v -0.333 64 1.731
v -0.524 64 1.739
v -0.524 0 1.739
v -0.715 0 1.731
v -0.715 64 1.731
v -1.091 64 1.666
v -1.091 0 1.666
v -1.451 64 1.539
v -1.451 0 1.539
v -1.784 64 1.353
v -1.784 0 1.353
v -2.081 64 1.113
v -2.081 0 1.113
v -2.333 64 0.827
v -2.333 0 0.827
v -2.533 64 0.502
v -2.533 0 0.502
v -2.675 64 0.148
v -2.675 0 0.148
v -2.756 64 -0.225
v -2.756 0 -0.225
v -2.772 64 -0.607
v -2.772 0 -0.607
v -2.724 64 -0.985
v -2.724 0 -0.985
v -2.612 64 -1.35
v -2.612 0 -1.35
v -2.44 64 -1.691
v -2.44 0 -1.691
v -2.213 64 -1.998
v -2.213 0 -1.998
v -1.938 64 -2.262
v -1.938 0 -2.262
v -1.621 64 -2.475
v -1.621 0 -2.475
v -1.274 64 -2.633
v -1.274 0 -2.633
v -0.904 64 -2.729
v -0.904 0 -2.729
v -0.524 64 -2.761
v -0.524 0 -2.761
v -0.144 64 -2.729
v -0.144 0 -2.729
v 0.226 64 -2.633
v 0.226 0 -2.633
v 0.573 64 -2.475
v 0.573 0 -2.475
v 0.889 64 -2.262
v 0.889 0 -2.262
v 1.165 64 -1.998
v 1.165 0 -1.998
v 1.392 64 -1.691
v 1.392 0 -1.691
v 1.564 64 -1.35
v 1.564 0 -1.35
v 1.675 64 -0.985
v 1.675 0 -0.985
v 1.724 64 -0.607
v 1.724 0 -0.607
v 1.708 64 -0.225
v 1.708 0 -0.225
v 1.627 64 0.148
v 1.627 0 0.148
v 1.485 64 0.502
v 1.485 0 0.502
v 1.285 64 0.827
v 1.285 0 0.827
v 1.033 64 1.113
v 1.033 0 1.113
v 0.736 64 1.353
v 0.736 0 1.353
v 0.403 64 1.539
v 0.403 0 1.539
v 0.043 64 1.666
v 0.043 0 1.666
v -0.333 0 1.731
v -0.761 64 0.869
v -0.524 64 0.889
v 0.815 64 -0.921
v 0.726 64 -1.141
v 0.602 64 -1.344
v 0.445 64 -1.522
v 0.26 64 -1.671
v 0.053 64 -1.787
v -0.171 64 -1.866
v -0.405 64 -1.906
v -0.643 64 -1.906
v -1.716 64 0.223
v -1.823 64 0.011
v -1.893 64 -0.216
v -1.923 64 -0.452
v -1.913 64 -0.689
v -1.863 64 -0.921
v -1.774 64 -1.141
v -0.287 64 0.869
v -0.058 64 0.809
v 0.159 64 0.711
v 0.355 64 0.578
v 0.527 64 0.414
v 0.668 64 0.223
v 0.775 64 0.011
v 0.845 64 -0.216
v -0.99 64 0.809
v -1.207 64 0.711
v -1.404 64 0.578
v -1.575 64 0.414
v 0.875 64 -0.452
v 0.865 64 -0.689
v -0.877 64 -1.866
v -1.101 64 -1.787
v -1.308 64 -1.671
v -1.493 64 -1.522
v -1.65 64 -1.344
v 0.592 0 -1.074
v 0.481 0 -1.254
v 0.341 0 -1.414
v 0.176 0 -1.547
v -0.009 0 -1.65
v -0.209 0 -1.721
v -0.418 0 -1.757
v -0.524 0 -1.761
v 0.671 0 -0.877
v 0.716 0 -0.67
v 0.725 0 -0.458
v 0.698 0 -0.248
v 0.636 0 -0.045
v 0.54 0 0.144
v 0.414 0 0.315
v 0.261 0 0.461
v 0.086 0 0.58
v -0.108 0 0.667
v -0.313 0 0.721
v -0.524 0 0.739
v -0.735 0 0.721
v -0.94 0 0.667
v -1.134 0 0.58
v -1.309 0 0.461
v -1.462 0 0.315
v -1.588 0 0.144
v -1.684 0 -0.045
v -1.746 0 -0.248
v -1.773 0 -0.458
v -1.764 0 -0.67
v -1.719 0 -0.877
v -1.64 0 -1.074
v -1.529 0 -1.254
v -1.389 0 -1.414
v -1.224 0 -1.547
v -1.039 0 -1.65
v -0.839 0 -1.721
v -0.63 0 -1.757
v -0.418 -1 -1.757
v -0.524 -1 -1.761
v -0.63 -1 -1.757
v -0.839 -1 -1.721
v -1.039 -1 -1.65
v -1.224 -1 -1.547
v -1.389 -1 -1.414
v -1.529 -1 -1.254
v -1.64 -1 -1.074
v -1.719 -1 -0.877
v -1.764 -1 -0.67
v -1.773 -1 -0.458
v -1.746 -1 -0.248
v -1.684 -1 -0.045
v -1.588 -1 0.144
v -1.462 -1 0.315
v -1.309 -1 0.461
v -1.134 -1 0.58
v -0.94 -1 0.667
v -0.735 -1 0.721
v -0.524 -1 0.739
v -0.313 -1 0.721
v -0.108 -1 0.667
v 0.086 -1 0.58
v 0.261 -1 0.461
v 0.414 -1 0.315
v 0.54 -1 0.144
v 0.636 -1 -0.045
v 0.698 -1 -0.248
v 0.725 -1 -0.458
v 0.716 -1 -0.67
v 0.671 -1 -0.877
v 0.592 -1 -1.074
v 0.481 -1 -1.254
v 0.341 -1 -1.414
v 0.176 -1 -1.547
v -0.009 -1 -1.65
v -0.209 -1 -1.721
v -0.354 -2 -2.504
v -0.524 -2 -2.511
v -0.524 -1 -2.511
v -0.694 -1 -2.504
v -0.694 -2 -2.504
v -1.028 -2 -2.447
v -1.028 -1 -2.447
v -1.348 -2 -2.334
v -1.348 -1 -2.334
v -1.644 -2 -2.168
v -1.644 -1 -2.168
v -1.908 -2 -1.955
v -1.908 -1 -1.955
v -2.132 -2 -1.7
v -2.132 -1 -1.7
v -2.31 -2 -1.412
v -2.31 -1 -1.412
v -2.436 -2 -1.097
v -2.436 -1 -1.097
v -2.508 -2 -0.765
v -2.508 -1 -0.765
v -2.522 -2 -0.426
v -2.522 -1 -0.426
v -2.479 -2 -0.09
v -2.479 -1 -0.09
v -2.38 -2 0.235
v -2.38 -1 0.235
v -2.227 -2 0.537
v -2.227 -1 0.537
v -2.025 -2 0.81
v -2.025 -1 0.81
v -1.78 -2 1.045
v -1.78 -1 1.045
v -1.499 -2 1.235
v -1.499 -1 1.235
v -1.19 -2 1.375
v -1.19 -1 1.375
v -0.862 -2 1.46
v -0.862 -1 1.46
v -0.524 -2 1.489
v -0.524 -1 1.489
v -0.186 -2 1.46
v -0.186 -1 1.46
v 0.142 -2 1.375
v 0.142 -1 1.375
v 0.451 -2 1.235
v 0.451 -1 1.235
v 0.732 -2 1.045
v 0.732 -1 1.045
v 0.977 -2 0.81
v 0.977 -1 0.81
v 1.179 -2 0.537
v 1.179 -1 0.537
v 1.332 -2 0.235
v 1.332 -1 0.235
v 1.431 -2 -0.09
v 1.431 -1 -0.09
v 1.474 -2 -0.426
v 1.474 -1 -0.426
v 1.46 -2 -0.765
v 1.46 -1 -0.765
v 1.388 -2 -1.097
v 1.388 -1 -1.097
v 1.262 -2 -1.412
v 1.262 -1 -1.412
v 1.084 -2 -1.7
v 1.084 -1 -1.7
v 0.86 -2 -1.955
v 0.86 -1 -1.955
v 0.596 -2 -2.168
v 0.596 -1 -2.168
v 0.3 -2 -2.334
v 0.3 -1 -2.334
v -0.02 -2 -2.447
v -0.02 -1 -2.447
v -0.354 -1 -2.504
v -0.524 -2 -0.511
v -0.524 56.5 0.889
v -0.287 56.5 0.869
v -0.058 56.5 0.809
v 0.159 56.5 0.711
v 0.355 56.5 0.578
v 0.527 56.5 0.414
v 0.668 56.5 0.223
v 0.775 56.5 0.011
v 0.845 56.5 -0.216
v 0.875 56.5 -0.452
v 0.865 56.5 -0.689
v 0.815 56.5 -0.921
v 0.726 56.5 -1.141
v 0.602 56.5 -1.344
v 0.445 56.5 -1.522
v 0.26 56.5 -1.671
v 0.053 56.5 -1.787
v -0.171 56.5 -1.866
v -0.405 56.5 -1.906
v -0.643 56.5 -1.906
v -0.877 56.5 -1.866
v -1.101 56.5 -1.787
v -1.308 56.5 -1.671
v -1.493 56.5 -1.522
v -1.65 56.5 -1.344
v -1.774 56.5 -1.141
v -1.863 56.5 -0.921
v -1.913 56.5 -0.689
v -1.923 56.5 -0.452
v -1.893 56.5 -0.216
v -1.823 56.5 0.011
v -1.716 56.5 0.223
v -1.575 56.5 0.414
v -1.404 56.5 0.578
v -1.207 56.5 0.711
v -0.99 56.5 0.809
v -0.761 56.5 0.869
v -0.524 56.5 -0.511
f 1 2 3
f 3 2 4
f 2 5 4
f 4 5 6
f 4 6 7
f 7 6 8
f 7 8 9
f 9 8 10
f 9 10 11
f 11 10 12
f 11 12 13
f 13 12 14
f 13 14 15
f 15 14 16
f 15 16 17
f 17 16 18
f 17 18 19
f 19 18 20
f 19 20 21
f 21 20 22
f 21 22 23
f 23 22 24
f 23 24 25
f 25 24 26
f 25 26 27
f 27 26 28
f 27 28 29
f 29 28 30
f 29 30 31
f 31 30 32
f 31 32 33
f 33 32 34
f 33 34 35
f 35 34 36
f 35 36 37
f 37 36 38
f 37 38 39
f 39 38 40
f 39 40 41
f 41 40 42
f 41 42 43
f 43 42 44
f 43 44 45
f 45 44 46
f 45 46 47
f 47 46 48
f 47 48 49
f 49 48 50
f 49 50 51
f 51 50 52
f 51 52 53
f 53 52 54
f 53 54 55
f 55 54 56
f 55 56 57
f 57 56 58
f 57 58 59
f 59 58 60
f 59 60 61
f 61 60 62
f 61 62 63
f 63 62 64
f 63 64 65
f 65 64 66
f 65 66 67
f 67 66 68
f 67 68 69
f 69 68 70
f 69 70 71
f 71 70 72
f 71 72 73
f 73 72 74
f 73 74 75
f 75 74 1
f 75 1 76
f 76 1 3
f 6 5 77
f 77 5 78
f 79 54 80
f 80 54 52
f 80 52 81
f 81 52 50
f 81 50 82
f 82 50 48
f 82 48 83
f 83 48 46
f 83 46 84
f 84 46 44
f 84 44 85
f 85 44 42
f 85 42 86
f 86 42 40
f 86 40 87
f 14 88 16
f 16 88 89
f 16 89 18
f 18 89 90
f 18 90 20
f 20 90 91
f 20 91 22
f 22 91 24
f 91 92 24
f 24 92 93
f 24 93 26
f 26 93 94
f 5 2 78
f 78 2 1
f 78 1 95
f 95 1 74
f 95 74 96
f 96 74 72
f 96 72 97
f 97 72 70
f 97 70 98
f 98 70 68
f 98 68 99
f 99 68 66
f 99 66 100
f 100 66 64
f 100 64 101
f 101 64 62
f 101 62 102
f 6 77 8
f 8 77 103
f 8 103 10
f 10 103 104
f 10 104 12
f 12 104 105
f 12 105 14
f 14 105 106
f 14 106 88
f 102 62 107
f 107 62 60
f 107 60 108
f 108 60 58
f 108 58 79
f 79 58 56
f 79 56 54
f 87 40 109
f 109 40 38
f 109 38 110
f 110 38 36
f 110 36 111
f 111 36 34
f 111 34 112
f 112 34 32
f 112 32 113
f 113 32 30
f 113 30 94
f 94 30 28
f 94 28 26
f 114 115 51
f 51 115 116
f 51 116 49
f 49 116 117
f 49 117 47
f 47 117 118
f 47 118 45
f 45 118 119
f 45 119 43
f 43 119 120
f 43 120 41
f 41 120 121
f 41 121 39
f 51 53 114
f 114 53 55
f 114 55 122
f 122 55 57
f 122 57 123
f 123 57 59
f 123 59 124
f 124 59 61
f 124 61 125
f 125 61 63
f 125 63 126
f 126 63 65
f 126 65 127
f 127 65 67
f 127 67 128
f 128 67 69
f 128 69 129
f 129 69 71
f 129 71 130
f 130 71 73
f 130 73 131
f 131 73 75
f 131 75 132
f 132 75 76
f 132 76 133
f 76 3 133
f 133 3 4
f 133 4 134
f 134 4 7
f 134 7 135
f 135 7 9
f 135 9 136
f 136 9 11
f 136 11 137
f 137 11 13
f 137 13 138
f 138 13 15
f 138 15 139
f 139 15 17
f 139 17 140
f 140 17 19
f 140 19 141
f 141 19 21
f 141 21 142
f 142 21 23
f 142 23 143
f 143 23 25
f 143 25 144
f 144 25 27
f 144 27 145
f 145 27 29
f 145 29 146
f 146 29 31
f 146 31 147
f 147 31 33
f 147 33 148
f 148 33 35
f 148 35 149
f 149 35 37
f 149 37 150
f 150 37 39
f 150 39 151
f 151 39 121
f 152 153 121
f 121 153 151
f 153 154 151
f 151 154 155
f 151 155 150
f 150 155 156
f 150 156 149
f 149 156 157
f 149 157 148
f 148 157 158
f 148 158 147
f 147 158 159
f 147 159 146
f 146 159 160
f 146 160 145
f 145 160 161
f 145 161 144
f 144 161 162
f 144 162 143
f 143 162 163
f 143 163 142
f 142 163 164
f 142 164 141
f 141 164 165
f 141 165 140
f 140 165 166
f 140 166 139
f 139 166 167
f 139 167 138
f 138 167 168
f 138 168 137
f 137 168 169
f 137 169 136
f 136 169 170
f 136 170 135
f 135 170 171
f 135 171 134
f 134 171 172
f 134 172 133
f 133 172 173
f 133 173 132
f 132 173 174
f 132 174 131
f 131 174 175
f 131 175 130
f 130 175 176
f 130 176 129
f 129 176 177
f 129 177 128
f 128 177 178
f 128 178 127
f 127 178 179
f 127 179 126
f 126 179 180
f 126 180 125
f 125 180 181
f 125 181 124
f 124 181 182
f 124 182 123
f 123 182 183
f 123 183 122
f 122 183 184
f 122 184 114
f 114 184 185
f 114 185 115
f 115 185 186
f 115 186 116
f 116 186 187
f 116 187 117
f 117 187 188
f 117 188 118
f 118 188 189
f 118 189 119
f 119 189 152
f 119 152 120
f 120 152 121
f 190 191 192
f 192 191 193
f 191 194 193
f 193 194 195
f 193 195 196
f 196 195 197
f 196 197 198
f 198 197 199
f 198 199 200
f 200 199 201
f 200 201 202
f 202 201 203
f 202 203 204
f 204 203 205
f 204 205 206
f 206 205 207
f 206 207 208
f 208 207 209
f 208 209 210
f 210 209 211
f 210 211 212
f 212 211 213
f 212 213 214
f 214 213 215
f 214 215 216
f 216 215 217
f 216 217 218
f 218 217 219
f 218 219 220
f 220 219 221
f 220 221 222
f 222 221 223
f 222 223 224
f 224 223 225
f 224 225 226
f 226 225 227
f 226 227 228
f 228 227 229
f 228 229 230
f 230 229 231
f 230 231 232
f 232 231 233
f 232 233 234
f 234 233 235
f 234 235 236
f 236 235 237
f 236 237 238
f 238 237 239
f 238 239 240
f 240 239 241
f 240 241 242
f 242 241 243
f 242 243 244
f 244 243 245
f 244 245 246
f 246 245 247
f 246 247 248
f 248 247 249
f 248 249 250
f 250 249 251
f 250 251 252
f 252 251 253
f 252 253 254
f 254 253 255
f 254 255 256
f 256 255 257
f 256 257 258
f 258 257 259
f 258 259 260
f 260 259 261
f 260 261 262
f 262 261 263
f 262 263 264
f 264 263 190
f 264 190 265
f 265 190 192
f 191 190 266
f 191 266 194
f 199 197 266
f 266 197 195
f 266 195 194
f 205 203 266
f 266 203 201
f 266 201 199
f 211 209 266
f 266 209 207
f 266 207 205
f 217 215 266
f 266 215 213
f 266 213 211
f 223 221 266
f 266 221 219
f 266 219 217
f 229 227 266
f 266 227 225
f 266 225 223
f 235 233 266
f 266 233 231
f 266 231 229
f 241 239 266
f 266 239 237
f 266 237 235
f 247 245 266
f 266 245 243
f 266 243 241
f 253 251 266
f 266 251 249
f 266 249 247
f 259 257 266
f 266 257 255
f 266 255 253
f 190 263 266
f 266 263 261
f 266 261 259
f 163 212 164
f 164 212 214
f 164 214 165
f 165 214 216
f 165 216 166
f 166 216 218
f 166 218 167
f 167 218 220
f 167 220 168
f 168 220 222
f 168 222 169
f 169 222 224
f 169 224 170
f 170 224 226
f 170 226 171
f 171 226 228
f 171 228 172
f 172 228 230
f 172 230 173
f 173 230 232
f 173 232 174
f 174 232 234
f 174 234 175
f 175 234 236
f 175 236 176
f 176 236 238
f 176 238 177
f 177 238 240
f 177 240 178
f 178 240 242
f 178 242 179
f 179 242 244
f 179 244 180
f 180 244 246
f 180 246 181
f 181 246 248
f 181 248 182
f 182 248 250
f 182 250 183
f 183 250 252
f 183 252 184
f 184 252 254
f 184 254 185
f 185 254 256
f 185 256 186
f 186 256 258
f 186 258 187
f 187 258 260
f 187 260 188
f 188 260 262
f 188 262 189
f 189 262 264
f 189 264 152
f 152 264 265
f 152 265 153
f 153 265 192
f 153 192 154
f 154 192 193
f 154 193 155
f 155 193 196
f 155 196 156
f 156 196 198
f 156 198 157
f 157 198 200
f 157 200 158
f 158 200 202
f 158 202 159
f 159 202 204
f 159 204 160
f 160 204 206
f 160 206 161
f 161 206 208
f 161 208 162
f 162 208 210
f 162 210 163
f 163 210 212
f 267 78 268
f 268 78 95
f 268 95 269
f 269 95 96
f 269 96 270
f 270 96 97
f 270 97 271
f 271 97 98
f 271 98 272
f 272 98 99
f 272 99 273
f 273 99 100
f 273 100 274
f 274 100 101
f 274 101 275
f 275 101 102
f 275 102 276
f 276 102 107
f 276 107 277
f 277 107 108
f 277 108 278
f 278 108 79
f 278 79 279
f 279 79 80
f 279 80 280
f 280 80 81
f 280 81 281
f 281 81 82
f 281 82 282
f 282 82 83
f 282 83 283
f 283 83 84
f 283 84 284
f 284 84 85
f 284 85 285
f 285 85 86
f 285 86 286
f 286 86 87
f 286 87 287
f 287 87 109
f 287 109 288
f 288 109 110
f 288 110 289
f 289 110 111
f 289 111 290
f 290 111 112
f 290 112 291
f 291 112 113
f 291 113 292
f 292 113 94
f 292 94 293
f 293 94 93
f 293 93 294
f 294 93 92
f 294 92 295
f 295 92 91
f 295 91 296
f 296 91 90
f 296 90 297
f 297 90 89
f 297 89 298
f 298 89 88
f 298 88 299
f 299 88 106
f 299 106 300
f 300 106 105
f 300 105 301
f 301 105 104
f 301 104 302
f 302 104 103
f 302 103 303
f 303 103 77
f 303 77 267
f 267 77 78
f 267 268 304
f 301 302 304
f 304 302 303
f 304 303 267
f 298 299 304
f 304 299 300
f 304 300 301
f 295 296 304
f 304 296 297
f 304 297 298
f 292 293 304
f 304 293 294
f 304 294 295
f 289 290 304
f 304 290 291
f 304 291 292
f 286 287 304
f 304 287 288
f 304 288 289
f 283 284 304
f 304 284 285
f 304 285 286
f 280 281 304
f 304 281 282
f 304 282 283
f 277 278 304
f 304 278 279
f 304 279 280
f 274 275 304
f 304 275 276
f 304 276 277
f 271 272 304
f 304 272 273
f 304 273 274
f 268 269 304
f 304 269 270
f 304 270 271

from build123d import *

# Parameters (mm, degrees)
SKETCH1_R           = 2.25
BOSS_EXTRUDE1_DEPTH = 64
SKETCH1_3_R         = 1.375
BOSS_EXTRUDE2_DEPTH = 1
SKETCH5_R           = 1.25
BOSS_EXTRUDE3_DEPTH = 1
SKETCH6_R           = 2
BOSS_EXTRUDE4_DEPTH = 1
SKETCH12_R          = 1.4
CUT_EXTRUDE1_DEPTH  = 7.5


with BuildPart() as part:
    # Sketch1 → Boss-Extrude1 (new body)
    with BuildSketch(Plane(origin=(0, 0, 0), x_dir=(1, 0, 0), z_dir=(0, 1, 0))):
        with Locations((-0.522013312, 0.511138034)):
            Circle(SKETCH1_R)
    extrude(amount=BOSS_EXTRUDE1_DEPTH)

    # Sketch1<3> → Boss-Extrude2 (add)
    with BuildSketch(Plane(origin=(0, 0, 0), x_dir=(1, 0, 0), z_dir=(0, 1, 0))):
        with Locations((-0.522013312, 0.511138034)):
            Circle(SKETCH1_3_R)
    extrude(amount=BOSS_EXTRUDE2_DEPTH)

    # Sketch5 → Boss-Extrude3 (add)
    with BuildSketch(Plane.XZ):
        with Locations((-0.522013312, -0.511138034)):
            Circle(SKETCH5_R)
    extrude(amount=BOSS_EXTRUDE3_DEPTH)

    # Sketch6 → Boss-Extrude4 (add)
    with BuildSketch(Plane.XZ.offset(1)):
        with Locations((-0.522013312, -0.511138034)):
            Circle(SKETCH6_R)
    extrude(amount=BOSS_EXTRUDE4_DEPTH)

    # Sketch12 → Cut-Extrude1 (cut)
    with BuildSketch(Plane(origin=(0, 64, 0), x_dir=(1, 0, 0), z_dir=(0, 1, 0))):
        with Locations((-0.522013312, 0.511138034)):
            Circle(SKETCH12_R)
    extrude(amount=-CUT_EXTRUDE1_DEPTH, mode=Mode.SUBTRACT)


solid = part.part
